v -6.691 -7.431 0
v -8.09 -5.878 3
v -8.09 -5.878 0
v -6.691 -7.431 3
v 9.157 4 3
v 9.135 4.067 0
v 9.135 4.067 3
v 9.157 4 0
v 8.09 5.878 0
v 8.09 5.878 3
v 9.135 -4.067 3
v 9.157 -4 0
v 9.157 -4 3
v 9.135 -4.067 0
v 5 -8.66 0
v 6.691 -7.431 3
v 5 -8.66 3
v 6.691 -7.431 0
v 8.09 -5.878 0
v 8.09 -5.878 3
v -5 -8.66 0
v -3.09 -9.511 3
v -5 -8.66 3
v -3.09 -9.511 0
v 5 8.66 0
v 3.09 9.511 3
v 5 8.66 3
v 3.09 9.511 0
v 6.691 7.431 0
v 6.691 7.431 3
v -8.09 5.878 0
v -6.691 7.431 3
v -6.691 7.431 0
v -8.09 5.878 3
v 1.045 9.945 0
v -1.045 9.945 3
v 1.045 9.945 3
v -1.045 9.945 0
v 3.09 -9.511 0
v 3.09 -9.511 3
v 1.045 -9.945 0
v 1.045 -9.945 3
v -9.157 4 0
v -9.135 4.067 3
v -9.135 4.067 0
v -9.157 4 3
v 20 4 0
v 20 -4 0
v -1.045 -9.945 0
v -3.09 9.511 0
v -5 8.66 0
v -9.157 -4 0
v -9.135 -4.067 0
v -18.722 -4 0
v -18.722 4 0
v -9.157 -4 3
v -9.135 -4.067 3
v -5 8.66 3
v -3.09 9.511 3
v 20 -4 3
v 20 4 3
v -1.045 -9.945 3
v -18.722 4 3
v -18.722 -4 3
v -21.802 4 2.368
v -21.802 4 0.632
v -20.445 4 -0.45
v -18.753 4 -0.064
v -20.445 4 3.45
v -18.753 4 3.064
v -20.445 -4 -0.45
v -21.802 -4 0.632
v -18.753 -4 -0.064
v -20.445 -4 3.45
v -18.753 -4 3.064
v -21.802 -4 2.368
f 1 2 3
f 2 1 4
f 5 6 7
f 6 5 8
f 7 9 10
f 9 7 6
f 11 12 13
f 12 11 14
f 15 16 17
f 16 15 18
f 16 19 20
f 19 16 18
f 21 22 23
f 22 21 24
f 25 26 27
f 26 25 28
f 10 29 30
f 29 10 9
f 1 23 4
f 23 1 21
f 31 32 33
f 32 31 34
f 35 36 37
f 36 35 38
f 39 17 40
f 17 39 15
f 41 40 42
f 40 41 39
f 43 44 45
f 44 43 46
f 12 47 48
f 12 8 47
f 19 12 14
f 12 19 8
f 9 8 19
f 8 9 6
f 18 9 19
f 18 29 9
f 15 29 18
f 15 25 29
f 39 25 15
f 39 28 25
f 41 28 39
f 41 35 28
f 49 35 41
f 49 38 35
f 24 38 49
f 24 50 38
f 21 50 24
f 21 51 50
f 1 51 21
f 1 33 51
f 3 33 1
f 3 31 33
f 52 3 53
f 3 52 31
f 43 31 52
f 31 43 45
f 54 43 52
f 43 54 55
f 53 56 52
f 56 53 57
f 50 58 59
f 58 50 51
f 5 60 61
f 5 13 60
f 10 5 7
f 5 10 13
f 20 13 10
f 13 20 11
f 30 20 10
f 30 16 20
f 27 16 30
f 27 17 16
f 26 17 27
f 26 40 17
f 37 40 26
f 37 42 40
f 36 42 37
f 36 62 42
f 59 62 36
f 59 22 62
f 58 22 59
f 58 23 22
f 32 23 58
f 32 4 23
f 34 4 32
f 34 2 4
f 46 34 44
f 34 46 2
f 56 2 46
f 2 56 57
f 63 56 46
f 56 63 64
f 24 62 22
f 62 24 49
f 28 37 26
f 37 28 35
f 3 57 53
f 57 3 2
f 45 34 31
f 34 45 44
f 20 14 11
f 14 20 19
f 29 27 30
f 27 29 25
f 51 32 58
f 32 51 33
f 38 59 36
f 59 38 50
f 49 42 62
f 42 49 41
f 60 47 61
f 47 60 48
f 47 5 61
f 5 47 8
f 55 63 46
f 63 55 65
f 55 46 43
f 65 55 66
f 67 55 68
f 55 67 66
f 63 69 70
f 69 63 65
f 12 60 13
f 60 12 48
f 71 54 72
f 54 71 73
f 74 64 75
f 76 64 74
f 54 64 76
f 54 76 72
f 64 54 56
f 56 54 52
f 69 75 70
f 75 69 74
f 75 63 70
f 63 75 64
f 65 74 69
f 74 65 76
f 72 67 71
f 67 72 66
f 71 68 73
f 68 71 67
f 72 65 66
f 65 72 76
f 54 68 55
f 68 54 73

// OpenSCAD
// Parameters for the key-shaped flat piece
key_thickness = 3; // Adjusted thickness of the piece to match the original model
circle_diameter = 20; // Diameter of the circular head remains unchanged
rect_length = 40; // Length of the rectangular tail increased to match the original model
rect_width = 8; // Width of the rectangular tail reduced to match the original model
transition_radius = 2; // Radius for smoothing the transition between the circular head and rectangular tail

module key_shaped_flat_piece() {
    // Circular head
    translate([0, 0, key_thickness / 2])
    cylinder(h = key_thickness, r = circle_diameter / 2, center = true);

    // Rectangular tail
    translate([-rect_length / 2, -rect_width / 2, 0])
    cube([rect_length, rect_width, key_thickness], center = false);

    // Smooth transition between circular head and rectangular tail
    translate([-rect_length / 2, 0, key_thickness / 2])
    rotate([90, 0, 0])
    cylinder(h = rect_width, r1 = transition_radius, r2 = transition_radius, center = true);
}

// Generate the model
key_shaped_flat_piece();
